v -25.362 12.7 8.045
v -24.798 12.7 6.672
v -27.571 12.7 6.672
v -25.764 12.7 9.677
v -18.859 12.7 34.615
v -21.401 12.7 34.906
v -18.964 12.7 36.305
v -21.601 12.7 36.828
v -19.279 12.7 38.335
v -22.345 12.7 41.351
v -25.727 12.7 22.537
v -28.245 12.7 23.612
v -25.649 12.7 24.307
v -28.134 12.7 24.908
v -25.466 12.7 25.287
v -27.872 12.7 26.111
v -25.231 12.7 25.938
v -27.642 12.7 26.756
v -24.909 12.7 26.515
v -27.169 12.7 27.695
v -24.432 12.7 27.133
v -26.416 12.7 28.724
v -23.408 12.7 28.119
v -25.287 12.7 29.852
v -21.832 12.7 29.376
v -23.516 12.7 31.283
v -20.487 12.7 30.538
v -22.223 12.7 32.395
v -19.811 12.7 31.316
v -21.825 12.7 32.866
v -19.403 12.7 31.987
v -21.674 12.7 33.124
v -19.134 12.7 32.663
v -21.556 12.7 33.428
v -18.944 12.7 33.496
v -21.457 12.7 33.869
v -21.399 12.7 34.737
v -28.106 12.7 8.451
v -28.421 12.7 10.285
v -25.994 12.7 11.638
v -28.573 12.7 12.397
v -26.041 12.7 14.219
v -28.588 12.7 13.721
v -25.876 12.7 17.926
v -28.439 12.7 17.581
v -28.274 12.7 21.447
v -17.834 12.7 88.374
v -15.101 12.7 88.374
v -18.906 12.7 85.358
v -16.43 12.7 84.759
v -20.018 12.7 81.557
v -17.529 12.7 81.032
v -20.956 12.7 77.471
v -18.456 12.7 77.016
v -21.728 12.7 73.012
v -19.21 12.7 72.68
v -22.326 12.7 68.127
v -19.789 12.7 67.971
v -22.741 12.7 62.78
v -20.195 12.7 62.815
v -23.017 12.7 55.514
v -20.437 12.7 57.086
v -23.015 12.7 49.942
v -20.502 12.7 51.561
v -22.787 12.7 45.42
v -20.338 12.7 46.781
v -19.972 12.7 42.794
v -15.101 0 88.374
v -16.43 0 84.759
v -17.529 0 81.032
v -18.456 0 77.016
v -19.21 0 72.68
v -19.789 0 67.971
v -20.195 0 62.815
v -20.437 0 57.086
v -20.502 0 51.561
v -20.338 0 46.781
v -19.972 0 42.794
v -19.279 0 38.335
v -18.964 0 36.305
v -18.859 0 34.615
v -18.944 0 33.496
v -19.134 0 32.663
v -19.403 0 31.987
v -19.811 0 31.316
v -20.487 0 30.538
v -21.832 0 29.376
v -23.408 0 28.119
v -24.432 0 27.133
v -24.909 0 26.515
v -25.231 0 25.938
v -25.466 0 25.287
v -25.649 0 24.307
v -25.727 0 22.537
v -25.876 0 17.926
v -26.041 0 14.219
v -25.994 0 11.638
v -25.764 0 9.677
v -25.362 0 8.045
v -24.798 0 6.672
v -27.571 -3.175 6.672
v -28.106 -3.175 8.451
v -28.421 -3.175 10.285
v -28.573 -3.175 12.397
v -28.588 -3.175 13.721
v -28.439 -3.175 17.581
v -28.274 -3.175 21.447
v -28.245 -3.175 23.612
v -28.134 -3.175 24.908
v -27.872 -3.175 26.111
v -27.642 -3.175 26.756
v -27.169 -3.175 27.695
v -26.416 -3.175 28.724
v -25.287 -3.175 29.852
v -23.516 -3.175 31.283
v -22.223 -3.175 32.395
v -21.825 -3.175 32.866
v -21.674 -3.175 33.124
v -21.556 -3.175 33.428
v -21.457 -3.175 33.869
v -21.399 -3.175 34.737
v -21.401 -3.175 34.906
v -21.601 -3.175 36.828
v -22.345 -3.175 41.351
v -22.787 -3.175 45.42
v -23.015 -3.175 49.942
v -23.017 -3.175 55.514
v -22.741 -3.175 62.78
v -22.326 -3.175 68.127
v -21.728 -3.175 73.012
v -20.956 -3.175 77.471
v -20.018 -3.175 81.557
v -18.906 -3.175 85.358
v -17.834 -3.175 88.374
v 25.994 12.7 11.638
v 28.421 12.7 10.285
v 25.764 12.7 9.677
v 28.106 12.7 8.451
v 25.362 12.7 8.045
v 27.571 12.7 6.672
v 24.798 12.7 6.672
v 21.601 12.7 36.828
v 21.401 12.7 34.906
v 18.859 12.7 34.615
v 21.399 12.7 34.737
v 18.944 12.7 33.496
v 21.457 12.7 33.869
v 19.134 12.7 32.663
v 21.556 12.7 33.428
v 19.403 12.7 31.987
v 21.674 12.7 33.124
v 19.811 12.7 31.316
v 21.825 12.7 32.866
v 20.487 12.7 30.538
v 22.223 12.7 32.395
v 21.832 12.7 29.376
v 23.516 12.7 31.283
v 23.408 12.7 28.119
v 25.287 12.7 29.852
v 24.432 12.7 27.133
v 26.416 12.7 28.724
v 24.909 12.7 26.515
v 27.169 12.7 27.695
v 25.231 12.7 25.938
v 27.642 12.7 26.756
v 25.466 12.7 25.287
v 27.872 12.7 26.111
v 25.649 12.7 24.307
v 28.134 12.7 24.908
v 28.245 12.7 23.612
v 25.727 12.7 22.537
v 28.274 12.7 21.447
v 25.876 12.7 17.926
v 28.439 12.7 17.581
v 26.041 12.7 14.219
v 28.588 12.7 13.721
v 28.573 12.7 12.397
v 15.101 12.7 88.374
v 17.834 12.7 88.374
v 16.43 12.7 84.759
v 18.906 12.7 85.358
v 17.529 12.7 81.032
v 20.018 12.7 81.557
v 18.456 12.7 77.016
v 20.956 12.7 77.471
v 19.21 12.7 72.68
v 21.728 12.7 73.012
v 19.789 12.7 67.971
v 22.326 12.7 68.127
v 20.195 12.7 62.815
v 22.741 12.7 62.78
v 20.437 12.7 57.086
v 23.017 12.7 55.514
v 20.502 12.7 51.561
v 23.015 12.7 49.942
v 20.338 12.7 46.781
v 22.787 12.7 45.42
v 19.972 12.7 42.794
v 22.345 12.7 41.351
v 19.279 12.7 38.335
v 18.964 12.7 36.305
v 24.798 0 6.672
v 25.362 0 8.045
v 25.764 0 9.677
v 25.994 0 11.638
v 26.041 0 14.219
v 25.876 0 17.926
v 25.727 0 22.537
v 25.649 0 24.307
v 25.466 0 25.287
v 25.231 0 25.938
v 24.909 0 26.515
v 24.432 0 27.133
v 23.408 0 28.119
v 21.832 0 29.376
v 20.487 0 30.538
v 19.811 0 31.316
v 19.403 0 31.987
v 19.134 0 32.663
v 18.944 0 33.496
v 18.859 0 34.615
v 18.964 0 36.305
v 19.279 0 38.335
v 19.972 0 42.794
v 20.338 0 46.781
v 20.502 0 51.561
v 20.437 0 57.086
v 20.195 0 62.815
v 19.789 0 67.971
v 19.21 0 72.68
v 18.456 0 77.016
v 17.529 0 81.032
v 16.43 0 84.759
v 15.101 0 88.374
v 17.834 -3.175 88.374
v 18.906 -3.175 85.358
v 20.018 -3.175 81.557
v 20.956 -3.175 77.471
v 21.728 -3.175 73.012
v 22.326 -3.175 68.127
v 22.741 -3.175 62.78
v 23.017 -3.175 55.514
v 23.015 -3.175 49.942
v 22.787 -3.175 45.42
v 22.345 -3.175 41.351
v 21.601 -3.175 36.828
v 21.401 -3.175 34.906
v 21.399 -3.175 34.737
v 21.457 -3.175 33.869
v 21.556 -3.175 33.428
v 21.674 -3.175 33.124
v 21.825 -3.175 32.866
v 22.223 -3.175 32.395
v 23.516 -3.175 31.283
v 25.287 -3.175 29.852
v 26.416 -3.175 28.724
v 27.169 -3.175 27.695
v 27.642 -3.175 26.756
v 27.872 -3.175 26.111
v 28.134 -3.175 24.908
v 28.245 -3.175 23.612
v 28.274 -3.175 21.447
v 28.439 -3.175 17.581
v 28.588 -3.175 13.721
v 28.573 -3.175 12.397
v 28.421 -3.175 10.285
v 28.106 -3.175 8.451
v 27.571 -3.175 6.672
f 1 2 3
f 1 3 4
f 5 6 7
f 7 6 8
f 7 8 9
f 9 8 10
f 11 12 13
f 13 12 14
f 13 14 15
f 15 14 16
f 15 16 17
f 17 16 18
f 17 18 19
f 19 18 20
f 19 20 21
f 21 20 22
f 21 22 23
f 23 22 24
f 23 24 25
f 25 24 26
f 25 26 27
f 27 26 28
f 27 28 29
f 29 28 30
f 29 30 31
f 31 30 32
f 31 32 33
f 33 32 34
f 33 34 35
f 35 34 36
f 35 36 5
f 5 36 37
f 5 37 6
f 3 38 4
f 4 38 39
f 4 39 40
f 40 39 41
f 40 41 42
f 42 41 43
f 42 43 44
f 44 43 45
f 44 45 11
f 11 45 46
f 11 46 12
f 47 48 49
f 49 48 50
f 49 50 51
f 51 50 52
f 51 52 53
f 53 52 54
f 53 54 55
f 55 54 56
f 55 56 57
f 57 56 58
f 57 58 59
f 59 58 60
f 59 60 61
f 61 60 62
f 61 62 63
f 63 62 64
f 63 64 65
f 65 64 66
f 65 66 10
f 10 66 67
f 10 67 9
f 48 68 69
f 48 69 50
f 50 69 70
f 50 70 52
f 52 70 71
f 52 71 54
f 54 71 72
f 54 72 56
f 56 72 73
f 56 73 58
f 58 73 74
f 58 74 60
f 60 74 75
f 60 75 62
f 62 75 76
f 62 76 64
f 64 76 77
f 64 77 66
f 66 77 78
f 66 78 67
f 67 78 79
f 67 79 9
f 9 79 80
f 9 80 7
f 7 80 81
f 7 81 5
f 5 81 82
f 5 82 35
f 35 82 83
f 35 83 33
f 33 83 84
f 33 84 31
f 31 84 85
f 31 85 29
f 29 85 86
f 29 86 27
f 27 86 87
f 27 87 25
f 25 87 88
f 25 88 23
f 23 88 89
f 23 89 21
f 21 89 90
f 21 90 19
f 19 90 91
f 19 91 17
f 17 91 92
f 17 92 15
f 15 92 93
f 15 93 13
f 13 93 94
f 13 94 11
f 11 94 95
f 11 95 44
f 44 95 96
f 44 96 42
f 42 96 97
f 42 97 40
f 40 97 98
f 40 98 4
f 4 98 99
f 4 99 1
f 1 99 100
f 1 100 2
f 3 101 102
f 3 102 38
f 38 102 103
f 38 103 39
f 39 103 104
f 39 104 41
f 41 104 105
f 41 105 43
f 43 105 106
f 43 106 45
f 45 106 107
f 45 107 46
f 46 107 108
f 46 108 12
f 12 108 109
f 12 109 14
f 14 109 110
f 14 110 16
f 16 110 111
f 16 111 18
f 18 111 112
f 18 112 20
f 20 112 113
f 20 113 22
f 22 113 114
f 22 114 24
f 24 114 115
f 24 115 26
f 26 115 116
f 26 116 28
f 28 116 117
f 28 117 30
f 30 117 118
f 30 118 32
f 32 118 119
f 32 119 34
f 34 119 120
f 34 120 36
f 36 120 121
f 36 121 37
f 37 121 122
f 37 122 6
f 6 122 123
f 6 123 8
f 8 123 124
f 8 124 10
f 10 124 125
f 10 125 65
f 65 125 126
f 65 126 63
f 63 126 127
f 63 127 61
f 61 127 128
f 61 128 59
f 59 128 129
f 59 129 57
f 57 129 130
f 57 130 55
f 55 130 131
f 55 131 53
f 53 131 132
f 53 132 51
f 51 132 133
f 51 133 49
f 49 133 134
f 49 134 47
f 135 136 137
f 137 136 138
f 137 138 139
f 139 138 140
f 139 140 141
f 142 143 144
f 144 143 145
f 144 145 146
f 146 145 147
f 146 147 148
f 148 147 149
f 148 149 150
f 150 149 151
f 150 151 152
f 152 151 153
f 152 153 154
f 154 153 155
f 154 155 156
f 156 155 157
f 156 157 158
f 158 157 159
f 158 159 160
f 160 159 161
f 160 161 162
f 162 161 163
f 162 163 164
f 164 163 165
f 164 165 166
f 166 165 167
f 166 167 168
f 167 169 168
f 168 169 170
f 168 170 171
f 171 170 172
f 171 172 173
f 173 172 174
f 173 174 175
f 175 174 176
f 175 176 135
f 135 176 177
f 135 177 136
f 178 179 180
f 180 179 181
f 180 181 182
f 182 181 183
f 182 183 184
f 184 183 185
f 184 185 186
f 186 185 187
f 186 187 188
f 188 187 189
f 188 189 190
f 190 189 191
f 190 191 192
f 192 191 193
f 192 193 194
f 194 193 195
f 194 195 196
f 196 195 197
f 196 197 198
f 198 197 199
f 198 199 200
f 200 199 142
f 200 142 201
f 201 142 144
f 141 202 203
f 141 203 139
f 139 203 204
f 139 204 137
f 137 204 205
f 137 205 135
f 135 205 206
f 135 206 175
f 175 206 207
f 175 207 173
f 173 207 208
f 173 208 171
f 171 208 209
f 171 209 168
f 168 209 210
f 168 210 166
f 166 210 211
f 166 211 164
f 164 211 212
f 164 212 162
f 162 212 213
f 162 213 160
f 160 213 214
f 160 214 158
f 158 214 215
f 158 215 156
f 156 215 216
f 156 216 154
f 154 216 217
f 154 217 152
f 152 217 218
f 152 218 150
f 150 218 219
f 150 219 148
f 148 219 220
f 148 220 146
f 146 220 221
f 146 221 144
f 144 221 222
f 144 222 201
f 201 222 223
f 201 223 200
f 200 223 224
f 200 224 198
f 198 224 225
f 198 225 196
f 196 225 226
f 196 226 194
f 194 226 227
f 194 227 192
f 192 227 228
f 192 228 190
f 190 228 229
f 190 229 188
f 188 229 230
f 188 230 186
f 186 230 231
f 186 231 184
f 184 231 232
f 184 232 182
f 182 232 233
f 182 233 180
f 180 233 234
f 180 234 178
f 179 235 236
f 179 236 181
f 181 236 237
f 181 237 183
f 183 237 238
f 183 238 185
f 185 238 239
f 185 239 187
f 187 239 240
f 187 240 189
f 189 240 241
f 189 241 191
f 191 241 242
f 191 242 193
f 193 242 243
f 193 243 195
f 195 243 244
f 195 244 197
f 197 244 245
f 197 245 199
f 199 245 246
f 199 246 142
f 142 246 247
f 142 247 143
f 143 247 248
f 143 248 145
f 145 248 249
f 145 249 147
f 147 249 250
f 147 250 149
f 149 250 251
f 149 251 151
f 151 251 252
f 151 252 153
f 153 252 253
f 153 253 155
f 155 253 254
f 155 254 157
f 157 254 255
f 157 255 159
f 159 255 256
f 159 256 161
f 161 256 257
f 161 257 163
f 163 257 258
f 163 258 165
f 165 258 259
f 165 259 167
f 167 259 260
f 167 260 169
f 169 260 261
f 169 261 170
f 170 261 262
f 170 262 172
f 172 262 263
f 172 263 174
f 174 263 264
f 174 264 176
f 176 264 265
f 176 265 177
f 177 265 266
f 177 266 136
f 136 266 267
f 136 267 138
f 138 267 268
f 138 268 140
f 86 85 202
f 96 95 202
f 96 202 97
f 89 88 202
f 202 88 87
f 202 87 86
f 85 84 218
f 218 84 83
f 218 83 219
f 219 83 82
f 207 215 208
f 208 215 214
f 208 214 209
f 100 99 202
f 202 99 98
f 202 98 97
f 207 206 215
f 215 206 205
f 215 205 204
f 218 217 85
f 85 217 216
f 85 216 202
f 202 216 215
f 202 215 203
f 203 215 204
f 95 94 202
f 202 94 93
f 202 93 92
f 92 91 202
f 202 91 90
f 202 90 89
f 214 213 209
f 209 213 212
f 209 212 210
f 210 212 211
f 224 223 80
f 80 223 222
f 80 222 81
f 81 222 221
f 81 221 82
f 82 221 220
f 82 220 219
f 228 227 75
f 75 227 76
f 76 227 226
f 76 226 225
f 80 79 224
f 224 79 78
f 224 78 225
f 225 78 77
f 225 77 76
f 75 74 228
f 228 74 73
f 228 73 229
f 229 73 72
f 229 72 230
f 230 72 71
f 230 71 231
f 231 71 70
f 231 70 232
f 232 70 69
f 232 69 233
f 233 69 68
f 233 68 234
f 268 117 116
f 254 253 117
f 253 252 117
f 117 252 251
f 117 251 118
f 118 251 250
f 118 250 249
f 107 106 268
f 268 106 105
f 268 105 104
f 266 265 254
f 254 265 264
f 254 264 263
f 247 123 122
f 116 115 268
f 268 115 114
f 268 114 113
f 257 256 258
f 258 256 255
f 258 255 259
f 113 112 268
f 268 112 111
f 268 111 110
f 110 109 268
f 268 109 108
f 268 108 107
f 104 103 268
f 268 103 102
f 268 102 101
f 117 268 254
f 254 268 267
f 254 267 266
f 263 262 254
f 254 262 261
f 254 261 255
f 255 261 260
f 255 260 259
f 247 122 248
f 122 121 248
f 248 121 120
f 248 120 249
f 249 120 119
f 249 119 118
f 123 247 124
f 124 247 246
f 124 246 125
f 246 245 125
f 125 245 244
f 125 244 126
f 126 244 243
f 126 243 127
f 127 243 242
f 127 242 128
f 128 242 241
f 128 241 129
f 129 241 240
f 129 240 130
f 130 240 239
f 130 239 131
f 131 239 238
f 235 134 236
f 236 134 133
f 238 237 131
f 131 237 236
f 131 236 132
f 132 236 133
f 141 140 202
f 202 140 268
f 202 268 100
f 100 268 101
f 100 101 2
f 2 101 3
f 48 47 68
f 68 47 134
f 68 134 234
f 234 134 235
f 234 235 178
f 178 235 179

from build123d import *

# Parameters (mm, degrees)
BOSS_EXTRUDE1_DEPTH     = 12.7
BOSS_EXTRUDE2_DEPTH     = 3.175
CUT_EXTRUDE1_DEPTH      = 101.014238242
CUT_EXTRUDE1_DEPTH_BACK = 101.014238242
SKETCH4_W               = 67.36433317
SKETCH4_H               = 14.054429222
CUT_EXTRUDE2_DEPTH      = 101.014238242
CUT_EXTRUDE2_DEPTH_BACK = 101.014238242
SKETCH5_W               = 49.650139024
SKETCH5_H               = 11.35292813


with BuildPart() as part:
    # Sketch1 → Boss-Extrude1 (new body)
    with BuildSketch(Plane(origin=(0, 0, 0), x_dir=(1, 0, 0), z_dir=(0, 1, 0))):
        with BuildLine():
            Line((-21.5265, -3.2766), (0, -3.2766))
            Line((0, -3.2766), (0, -0.7366))
            Line((0, -0.7366), (-22.203368624, -0.7366))
            add(Edge.make_bspline(
                [(-14.766234965, -94.996), (-14.996668515, -94.550702961), (-15.450701659, -93.682415389), (-16.413439589, -91.767388196), (-17.887523694, -88.422224636), (-19.594560475, -83.469769024), (-21.052486613, -77.397632478), (-22.034096417, -71.250607736), (-22.635448462, -65.107414018), (-22.944039592, -59.024976794), (-23.084444297, -53.118128932), (-23.002154011, -48.13674982), (-22.683676725, -43.998708308), (-22.359989314, -41.340657214), (-22.007277512, -39.131677721), (-21.704921231, -37.500648633), (-21.469245926, -36.019201003), (-21.369830007, -34.730271156), (-21.446569087, -33.731143322), (-21.627659106, -33.187469417), (-21.810713281, -32.873112803), (-22.148038091, -32.44515636), (-22.867304718, -31.779192766), (-24.075169697, -30.851423932), (-25.449709236, -29.757875503), (-26.604671748, -28.583220413), (-27.409184219, -27.341372966), (-28.002750801, -25.901376523), (-28.25036248, -24.243876032), (-28.270193255, -22.474579202), (-28.2711543, -20.975677511), (-28.338741981, -19.393014324), (-28.42894001, -17.767125256), (-28.551990808, -15.552264072), (-28.639753679, -12.730710637), (-28.395723992, -9.330406242), (-27.628982584, -6.526282911), (-26.475505353, -4.408806497), (-25.501439175, -3.190317526), (-24.569763004, -2.309659584), (-23.92459958, -1.802530754), (-23.375440816, -1.427178175), (-23.011355495, -1.200536295), (-22.725705767, -1.036197531), (-22.502588374, -0.908307956), (-22.321180554, -0.804189707), (-22.203368624, -0.7366)],
                knots=[-0.006638515, -0.006638515, -0.006638515, -0.006638515, 0.009346854, 0.025332222, 0.057302959, 0.121244433, 0.185185906, 0.24912738, 0.313068853, 0.377010327, 0.4409518, 0.504893274, 0.536864011, 0.568834748, 0.584820116, 0.600805484, 0.616790853, 0.632776221, 0.648761589, 0.664746958, 0.672739642, 0.680732326, 0.696717695, 0.712703063, 0.728688431, 0.7446738, 0.752666484, 0.760659168, 0.776644537, 0.792629905, 0.808615273, 0.824600642, 0.84058601, 0.856571379, 0.888542115, 0.920512852, 0.952483589, 0.968468957, 0.984454326, 0.99244701, 1.000439694, 1.004436036, 1.008432378, 1.010430549, 1.01242872, 1.016425062, 1.016425062, 1.016425062, 1.016425062], degree=3))
            Line((-14.766234965, -94.996), (0, -94.996))
            Line((0, -94.996), (0, -92.456))
            Line((0, -92.456), (-13.2207, -92.456))
            add(Edge.make_bspline(
                [(-21.5265, -3.2766), (-27.673005337, -6.802902412), (-25.371163365, -16.369853549), (-25.935584149, -27.56197211), (-17.602342179, -30.7914771), (-20.487516457, -42.996088051), (-20.730621659, -62.486681847), (-18.952436581, -81.379811959), (-13.2207, -92.456)],
                knots=[0, 0, 0, 0, 0.208497884, 0.25519267, 0.340986981, 0.42476814, 0.602384632, 1, 1, 1, 1], degree=3))
        make_face()
    boss_extrude1 = extrude(amount=BOSS_EXTRUDE1_DEPTH)

    # Mirror1: Boss-Extrude1 across plane
    add(boss_extrude1.mirror(Plane(origin=(0, 0, 0), x_dir=(0, 0, 1), z_dir=(1, 0, 0))))

    # Sketch3 → Boss-Extrude2 (add)
    with BuildSketch(Plane(origin=(0, 0, 0), x_dir=(1, 0, 0), z_dir=(0, 1, 0))):
        with BuildLine():
            Line((-14.766234965, -94.996), (14.766234965, -94.996))
            add(Edge.make_bspline(
                [(14.766234965, -94.996), (14.996668515, -94.550702961), (15.450701659, -93.682415389), (16.413439589, -91.767388196), (17.887523694, -88.422224636), (19.594560475, -83.469769024), (21.052486613, -77.397632478), (22.034096417, -71.250607736), (22.635448462, -65.107414018), (22.944039592, -59.024976794), (23.084444297, -53.118128932), (23.002154011, -48.13674982), (22.683676725, -43.998708308), (22.359989314, -41.340657214), (22.007277512, -39.131677721), (21.704921231, -37.500648633), (21.469245926, -36.019201003), (21.369830007, -34.730271156), (21.446569087, -33.731143322), (21.627659106, -33.187469417), (21.810713281, -32.873112803), (22.148038091, -32.44515636), (22.867304718, -31.779192766), (24.075169697, -30.851423932), (25.449709236, -29.757875503), (26.604671748, -28.583220413), (27.409184219, -27.341372966), (28.002750801, -25.901376523), (28.25036248, -24.243876032), (28.270193255, -22.474579202), (28.2711543, -20.975677511), (28.338741981, -19.393014324), (28.42894001, -17.767125256), (28.551990808, -15.552264072), (28.639753679, -12.730710637), (28.395723992, -9.330406242), (27.628982584, -6.526282911), (26.475505353, -4.408806497), (25.501439175, -3.190317526), (24.569763004, -2.309659584), (23.92459958, -1.802530754), (23.375440816, -1.427178175), (23.011355495, -1.200536295), (22.725705767, -1.036197531), (22.502588374, -0.908307956), (22.321180554, -0.804189707), (22.203368624, -0.7366)],
                knots=[-0.006638515, -0.006638515, -0.006638515, -0.006638515, 0.009346854, 0.025332222, 0.057302959, 0.121244433, 0.185185906, 0.24912738, 0.313068853, 0.377010327, 0.4409518, 0.504893274, 0.536864011, 0.568834748, 0.584820116, 0.600805484, 0.616790853, 0.632776221, 0.648761589, 0.664746958, 0.672739642, 0.680732326, 0.696717695, 0.712703063, 0.728688431, 0.7446738, 0.752666484, 0.760659168, 0.776644537, 0.792629905, 0.808615273, 0.824600642, 0.84058601, 0.856571379, 0.888542115, 0.920512852, 0.952483589, 0.968468957, 0.984454326, 0.99244701, 1.000439694, 1.004436036, 1.008432378, 1.010430549, 1.01242872, 1.016425062, 1.016425062, 1.016425062, 1.016425062], degree=3))
            Line((22.203368624, -0.7366), (-22.203368624, -0.7366))
            add(Edge.make_bspline(
                [(-22.203368624, -0.7366), (-22.321180554, -0.804189707), (-22.502588374, -0.908307956), (-22.725705767, -1.036197531), (-23.011355495, -1.200536295), (-23.375440816, -1.427178175), (-23.92459958, -1.802530754), (-24.569763004, -2.309659584), (-25.501439175, -3.190317526), (-26.475505353, -4.408806497), (-27.628982584, -6.526282911), (-28.395723992, -9.330406242), (-28.639753679, -12.730710637), (-28.551990808, -15.552264072), (-28.42894001, -17.767125256), (-28.338741981, -19.393014324), (-28.2711543, -20.975677511), (-28.270193255, -22.474579202), (-28.25036248, -24.243876032), (-28.002750801, -25.901376523), (-27.409184219, -27.341372966), (-26.604671748, -28.583220413), (-25.449709236, -29.757875503), (-24.075169697, -30.851423932), (-22.867304718, -31.779192766), (-22.148038091, -32.44515636), (-21.810713281, -32.873112803), (-21.627659106, -33.187469417), (-21.446569087, -33.731143322), (-21.369830007, -34.730271156), (-21.469245926, -36.019201003), (-21.704921231, -37.500648633), (-22.007277512, -39.131677721), (-22.359989314, -41.340657214), (-22.683676725, -43.998708308), (-23.002154011, -48.13674982), (-23.084444297, -53.118128932), (-22.944039592, -59.024976794), (-22.635448462, -65.107414018), (-22.034096417, -71.250607736), (-21.052486613, -77.397632478), (-19.594560475, -83.469769024), (-17.887523694, -88.422224636), (-16.413439589, -91.767388196), (-15.450701659, -93.682415389), (-14.996668515, -94.550702961), (-14.766234965, -94.996)],
                knots=[-0.006638515, -0.006638515, -0.006638515, -0.006638515, -0.002642173, -0.000644001, 0.00135417, 0.005350512, 0.009346854, 0.017339538, 0.025332222, 0.041317591, 0.057302959, 0.089273696, 0.121244433, 0.153215169, 0.169200538, 0.185185906, 0.201171274, 0.217156643, 0.233142011, 0.24912738, 0.257120064, 0.265112748, 0.281098116, 0.297083485, 0.313068853, 0.329054222, 0.337046906, 0.34503959, 0.361024958, 0.377010327, 0.392995695, 0.408981064, 0.424966432, 0.4409518, 0.472922537, 0.504893274, 0.568834748, 0.632776221, 0.696717695, 0.760659168, 0.824600642, 0.888542115, 0.952483589, 0.984454326, 1.000439694, 1.016425062, 1.016425062, 1.016425062, 1.016425062], degree=3))
        make_face()
    extrude(amount=-BOSS_EXTRUDE2_DEPTH)

    # Sketch4 → Cut-Extrude1 (cut, two sides: drawn at the far end of the back side and taken through both)
    with BuildSketch(Plane(origin=(0, 0, 0), x_dir=(1, 0, 0), z_dir=(0, 1, 0)).offset(-CUT_EXTRUDE1_DEPTH_BACK)):
        with Locations((-0.681036793, 0.354931298)):
            Rectangle(SKETCH4_W, SKETCH4_H)
    extrude(amount=CUT_EXTRUDE1_DEPTH + CUT_EXTRUDE1_DEPTH_BACK, mode=Mode.SUBTRACT)

    # Sketch5 → Cut-Extrude2 (cut, two sides: drawn at the far end of the back side and taken through both)
    with BuildSketch(Plane(origin=(0, 0, 0), x_dir=(1, 0, 0), z_dir=(0, 1, 0)).offset(-CUT_EXTRUDE2_DEPTH_BACK)):
        with Locations((-1.165062558, -94.05095474)):
            Rectangle(SKETCH5_W, SKETCH5_H)
    extrude(amount=CUT_EXTRUDE2_DEPTH + CUT_EXTRUDE2_DEPTH_BACK, mode=Mode.SUBTRACT)


solid = part.part
